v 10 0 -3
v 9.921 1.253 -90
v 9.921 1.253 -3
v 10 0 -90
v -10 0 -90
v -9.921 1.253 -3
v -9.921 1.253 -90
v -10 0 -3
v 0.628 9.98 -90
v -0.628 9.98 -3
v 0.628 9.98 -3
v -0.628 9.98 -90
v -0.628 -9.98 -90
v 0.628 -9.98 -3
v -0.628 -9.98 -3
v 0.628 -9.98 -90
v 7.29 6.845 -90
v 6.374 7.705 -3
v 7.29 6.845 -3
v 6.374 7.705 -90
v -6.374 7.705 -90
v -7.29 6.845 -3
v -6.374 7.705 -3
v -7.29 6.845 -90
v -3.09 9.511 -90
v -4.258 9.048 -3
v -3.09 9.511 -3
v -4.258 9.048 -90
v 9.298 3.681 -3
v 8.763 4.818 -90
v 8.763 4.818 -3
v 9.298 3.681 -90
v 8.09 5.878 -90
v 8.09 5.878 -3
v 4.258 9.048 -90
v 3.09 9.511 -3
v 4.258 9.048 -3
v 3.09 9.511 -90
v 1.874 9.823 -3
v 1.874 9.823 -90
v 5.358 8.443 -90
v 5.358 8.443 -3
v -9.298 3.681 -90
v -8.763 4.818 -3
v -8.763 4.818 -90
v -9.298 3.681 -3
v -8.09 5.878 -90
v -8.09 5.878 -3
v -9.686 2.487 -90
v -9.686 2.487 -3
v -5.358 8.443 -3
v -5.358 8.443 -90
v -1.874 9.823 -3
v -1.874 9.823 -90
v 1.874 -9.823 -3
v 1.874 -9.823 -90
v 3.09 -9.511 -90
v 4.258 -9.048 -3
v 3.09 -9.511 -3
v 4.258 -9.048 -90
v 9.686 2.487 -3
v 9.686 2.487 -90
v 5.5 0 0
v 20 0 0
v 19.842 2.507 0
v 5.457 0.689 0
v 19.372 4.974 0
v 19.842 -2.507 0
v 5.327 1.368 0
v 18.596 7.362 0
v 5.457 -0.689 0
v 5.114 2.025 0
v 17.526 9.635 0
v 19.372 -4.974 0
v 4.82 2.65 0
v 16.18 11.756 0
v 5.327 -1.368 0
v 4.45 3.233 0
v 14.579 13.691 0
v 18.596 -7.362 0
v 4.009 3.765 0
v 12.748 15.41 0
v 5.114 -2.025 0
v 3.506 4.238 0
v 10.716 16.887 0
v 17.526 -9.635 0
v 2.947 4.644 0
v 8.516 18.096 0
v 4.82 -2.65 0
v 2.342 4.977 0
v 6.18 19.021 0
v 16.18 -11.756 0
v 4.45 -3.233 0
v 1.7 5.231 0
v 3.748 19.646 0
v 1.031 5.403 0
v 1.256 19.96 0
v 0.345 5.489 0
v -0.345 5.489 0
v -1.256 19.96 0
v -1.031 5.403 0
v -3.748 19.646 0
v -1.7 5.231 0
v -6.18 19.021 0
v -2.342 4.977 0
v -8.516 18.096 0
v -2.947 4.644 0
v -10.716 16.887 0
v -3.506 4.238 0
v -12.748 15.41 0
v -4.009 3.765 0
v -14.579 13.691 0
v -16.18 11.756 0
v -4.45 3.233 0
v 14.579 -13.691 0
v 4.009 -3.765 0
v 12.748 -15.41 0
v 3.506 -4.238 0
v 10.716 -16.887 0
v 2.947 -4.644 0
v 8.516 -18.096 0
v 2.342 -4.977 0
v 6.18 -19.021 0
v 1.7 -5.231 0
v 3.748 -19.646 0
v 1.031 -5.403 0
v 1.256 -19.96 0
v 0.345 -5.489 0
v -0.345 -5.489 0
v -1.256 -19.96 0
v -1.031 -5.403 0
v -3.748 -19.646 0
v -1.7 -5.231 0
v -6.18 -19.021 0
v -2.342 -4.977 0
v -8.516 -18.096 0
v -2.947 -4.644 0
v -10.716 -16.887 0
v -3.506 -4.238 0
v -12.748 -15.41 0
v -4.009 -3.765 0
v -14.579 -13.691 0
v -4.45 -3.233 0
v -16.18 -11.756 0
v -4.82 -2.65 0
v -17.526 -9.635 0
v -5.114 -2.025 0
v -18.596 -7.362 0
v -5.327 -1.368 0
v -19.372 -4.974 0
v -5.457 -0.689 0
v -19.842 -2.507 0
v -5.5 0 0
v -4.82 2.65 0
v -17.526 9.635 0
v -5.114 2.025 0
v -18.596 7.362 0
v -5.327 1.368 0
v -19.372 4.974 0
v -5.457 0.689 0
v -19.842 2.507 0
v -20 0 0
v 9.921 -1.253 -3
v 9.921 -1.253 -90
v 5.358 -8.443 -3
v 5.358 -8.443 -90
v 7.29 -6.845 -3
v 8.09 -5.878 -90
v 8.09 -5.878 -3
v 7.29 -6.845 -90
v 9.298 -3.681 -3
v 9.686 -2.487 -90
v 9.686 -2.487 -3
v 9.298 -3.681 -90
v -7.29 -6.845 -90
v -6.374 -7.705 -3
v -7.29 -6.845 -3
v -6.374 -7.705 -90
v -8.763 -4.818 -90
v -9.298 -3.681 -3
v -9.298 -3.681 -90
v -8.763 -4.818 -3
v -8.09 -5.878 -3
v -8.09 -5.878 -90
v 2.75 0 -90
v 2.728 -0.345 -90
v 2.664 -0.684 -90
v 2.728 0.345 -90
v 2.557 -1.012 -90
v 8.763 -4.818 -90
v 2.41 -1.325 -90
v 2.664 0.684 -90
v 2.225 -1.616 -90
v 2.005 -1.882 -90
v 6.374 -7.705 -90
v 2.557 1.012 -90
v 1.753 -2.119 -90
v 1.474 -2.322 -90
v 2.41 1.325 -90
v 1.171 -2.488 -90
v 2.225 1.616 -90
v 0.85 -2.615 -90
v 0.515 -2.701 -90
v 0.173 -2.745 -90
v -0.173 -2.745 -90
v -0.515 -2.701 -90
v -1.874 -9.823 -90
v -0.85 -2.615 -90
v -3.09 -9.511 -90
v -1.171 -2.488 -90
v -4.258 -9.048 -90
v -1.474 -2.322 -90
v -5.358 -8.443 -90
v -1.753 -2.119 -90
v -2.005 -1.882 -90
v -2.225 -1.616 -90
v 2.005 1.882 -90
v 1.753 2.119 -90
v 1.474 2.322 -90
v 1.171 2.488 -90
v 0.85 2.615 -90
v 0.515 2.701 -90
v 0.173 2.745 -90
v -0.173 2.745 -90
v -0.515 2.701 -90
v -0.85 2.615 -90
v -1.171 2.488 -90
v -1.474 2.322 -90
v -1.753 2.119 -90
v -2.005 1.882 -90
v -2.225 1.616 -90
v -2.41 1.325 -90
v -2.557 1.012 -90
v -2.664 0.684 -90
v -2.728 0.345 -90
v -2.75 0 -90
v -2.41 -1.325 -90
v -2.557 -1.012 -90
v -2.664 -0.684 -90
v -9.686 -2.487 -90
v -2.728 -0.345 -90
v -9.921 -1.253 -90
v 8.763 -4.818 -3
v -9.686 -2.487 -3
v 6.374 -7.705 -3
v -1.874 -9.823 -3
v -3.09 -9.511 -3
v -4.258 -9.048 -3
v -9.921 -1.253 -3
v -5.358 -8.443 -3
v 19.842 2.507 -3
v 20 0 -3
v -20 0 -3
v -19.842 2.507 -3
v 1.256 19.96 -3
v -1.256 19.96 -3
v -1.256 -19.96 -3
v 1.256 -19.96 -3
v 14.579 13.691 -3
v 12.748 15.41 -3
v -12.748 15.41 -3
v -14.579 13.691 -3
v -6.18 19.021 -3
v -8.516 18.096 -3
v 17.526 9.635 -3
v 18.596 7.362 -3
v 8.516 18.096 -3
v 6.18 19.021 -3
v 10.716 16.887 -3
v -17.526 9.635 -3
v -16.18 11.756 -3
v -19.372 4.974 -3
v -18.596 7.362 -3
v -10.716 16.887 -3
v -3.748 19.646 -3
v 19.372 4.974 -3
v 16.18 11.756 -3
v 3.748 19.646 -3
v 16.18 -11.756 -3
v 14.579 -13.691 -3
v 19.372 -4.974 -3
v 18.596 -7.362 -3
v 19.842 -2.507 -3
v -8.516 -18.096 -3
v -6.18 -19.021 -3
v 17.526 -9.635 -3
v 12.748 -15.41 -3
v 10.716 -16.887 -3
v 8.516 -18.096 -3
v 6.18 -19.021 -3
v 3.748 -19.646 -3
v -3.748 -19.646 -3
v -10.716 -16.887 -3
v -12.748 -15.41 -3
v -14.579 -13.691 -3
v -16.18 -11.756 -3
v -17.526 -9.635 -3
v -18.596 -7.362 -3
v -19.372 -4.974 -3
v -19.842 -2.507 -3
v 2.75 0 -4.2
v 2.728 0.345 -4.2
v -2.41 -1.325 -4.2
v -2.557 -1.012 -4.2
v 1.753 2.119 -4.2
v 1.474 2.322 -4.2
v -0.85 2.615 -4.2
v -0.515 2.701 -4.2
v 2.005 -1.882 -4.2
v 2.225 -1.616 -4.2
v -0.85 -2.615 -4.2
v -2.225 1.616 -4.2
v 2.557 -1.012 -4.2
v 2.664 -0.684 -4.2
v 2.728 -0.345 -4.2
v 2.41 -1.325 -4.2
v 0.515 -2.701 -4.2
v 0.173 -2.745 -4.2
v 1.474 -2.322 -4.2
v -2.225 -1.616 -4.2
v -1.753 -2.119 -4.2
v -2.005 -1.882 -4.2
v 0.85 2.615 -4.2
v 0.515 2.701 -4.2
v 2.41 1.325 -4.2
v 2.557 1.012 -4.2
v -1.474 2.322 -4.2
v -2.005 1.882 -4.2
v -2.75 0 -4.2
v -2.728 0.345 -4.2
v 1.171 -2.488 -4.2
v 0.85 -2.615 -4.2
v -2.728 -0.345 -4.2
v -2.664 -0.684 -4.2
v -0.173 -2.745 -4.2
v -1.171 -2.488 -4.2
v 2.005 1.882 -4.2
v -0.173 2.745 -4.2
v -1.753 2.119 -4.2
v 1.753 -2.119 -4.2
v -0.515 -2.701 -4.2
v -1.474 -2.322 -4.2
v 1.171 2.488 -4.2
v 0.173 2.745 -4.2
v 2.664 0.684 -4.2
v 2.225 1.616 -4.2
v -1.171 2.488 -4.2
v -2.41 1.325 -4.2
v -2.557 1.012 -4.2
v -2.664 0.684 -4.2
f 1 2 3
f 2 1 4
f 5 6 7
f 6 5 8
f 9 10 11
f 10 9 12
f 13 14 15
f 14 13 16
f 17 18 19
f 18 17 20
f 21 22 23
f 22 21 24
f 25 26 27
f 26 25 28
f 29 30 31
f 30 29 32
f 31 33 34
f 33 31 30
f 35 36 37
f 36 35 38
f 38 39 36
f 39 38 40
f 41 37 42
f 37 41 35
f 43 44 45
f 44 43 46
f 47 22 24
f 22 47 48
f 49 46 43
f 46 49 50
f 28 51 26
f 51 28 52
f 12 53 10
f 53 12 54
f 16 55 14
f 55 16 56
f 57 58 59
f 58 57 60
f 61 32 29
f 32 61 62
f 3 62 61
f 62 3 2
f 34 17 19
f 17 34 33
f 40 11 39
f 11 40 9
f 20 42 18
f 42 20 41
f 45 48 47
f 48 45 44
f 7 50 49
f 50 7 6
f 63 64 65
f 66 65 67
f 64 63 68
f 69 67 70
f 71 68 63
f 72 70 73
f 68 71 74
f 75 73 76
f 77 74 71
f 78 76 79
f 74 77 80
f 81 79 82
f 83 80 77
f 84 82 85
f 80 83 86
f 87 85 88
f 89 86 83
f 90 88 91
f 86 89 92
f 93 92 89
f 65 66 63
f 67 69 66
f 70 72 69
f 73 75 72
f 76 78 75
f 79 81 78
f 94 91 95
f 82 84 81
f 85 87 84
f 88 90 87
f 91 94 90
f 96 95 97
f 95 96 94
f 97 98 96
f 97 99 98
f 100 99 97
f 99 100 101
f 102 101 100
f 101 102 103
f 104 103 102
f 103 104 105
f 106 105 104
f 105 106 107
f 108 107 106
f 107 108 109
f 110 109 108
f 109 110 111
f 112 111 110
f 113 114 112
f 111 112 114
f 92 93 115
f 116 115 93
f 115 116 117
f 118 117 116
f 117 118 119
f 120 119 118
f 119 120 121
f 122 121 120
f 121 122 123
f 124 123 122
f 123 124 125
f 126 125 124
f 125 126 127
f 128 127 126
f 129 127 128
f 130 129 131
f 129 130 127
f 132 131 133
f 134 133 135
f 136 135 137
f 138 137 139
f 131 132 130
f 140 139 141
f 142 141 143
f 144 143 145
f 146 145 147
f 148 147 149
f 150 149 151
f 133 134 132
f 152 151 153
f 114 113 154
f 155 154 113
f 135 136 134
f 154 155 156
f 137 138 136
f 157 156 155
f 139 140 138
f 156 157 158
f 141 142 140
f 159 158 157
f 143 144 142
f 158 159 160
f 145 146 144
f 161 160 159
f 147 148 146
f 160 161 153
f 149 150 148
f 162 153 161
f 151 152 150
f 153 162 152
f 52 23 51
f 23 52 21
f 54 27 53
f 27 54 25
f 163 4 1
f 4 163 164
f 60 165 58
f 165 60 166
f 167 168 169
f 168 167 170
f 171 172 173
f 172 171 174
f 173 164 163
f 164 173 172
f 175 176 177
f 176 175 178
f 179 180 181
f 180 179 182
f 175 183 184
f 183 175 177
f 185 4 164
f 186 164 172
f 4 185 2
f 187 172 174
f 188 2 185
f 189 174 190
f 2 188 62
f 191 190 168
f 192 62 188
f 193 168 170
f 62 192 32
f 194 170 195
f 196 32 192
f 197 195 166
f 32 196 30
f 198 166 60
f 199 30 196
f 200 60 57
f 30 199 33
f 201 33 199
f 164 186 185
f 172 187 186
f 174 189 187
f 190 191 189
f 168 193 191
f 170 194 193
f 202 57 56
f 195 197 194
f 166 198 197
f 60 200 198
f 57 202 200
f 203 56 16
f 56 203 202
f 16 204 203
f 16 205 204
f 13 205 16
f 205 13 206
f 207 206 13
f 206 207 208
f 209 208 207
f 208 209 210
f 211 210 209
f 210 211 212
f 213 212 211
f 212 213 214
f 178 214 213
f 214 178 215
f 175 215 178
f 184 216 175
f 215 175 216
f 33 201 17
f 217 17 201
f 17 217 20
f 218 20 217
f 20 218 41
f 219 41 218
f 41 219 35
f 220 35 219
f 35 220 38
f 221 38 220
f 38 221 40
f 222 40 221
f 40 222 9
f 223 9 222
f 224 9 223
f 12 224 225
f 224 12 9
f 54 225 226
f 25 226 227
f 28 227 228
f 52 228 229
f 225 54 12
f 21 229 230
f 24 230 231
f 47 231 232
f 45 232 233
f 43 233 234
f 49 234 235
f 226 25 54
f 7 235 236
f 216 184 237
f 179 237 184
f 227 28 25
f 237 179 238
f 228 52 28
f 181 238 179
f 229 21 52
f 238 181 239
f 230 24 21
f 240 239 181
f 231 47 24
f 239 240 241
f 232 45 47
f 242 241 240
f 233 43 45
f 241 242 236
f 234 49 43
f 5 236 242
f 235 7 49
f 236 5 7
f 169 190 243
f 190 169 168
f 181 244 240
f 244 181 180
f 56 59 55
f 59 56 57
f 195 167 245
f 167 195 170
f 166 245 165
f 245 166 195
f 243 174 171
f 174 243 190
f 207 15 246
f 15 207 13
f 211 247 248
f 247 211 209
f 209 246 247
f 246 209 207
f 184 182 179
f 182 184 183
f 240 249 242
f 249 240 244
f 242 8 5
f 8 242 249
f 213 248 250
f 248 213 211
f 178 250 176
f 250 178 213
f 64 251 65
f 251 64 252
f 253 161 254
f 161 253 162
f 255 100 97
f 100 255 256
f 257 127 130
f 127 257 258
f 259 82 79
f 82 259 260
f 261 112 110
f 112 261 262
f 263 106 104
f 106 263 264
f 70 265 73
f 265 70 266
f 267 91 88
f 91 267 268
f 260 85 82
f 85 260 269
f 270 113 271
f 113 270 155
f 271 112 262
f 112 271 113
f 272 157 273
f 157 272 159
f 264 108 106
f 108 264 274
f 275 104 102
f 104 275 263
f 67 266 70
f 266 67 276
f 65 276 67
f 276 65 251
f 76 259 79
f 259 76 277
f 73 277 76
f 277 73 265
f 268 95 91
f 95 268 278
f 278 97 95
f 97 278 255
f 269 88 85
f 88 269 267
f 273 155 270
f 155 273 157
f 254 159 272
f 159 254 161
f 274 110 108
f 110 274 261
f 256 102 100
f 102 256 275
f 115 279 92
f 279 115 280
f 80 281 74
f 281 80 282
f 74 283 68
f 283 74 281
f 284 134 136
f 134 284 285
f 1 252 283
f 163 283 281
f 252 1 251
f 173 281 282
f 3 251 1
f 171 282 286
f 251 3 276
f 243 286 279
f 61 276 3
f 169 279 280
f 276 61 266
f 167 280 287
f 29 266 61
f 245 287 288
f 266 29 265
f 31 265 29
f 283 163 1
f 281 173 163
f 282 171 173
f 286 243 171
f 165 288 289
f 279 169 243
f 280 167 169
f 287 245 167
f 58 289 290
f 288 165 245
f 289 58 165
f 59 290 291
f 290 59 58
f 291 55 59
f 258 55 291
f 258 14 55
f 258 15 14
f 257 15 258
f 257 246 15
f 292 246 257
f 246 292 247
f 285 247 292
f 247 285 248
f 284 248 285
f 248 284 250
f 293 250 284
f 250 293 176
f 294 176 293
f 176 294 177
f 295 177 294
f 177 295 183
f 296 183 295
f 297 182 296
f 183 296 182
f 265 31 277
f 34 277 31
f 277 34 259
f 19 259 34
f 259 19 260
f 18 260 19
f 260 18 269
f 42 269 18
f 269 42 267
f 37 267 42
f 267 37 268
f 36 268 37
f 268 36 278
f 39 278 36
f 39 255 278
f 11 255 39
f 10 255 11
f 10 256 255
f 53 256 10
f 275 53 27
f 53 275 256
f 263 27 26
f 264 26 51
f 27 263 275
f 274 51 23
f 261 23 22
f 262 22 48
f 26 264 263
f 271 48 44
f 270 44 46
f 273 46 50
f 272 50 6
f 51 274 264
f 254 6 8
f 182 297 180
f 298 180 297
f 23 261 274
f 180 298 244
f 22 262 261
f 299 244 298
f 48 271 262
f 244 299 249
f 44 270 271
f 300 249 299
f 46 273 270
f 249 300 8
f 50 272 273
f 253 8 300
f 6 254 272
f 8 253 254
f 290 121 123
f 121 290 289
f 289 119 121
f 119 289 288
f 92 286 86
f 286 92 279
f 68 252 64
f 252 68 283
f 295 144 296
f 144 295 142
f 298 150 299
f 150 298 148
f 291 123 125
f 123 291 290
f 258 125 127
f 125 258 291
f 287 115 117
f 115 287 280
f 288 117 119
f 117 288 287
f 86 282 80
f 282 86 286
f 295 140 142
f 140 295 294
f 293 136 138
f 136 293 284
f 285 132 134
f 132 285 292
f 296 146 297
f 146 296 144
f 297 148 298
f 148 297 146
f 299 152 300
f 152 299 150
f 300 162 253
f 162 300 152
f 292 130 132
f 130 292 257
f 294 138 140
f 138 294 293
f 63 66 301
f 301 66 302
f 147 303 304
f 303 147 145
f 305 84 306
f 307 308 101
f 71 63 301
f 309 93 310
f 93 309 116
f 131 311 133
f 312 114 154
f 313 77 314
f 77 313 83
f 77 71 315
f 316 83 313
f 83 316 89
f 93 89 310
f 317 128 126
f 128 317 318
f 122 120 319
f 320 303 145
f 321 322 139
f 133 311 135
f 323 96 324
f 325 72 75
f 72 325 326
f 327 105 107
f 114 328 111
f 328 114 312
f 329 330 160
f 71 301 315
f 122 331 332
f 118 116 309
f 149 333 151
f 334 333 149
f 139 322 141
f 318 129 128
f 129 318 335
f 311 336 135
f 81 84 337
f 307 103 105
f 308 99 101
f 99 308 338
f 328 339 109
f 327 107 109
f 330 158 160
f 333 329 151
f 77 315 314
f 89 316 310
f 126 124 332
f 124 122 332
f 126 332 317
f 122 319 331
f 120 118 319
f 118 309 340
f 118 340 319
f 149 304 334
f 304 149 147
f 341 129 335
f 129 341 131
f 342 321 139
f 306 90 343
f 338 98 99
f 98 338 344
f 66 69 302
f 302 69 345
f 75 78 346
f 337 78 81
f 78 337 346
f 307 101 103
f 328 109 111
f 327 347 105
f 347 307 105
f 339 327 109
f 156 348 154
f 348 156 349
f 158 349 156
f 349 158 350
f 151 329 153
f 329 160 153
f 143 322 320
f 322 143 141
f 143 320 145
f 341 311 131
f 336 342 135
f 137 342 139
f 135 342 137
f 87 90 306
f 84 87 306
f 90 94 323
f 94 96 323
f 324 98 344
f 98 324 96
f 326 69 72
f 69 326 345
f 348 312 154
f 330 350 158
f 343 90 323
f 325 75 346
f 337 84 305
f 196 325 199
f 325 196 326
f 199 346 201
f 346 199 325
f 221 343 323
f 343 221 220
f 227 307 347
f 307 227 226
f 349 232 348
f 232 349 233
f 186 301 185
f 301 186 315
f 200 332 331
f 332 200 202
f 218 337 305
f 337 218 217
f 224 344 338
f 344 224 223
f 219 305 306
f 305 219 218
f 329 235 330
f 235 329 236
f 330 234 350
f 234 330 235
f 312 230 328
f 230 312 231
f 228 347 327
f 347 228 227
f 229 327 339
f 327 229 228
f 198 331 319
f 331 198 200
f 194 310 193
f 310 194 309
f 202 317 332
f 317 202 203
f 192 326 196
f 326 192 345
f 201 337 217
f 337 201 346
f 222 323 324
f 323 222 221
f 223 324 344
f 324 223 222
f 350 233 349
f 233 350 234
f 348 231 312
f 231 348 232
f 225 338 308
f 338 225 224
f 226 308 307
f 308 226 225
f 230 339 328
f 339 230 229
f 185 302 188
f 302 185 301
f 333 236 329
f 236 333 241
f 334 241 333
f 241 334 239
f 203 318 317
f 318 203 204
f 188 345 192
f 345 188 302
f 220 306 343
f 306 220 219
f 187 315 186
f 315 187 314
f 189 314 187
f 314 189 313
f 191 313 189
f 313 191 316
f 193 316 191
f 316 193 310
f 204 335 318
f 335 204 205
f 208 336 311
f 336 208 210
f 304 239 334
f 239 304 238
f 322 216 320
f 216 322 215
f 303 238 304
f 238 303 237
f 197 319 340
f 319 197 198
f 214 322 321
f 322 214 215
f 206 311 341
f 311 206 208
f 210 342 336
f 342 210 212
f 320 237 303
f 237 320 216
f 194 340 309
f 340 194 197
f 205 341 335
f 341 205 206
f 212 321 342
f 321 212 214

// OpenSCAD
$fn = 50;


difference() {
	union() {
		translate(v = [0, 0, -90.0000000000]) {
			cylinder(h = 90, r = 10.0000000000);
		}
		translate(v = [0, 0, -3.0000000000]) {
			cylinder(h = 3, r = 20.0000000000);
		}
	}
	union() {
		translate(v = [0, 0, 0]) {
			rotate(a = [0, 0, 0]) {
				difference() {
					union() {
						#translate(v = [0, 0, -90.0000000000]) {
							cylinder(h = 90, r = 2.2500000000);
						}
						#translate(v = [0, 0, -4.2000000000]) {
							cylinder(h = 4.2000000000, r = 10.0000000000, r1 = 2.7500000000, r2 = 5.5000000000);
						}
						#translate(v = [0, 0, -90.0000000000]) {
							cylinder(h = 90, r = 2.7500000000);
						}
						#translate(v = [0, 0, -90.0000000000]) {
							cylinder(h = 90, r = 2.2500000000);
						}
					}
					union();
				}
			}
		}
	}
}
